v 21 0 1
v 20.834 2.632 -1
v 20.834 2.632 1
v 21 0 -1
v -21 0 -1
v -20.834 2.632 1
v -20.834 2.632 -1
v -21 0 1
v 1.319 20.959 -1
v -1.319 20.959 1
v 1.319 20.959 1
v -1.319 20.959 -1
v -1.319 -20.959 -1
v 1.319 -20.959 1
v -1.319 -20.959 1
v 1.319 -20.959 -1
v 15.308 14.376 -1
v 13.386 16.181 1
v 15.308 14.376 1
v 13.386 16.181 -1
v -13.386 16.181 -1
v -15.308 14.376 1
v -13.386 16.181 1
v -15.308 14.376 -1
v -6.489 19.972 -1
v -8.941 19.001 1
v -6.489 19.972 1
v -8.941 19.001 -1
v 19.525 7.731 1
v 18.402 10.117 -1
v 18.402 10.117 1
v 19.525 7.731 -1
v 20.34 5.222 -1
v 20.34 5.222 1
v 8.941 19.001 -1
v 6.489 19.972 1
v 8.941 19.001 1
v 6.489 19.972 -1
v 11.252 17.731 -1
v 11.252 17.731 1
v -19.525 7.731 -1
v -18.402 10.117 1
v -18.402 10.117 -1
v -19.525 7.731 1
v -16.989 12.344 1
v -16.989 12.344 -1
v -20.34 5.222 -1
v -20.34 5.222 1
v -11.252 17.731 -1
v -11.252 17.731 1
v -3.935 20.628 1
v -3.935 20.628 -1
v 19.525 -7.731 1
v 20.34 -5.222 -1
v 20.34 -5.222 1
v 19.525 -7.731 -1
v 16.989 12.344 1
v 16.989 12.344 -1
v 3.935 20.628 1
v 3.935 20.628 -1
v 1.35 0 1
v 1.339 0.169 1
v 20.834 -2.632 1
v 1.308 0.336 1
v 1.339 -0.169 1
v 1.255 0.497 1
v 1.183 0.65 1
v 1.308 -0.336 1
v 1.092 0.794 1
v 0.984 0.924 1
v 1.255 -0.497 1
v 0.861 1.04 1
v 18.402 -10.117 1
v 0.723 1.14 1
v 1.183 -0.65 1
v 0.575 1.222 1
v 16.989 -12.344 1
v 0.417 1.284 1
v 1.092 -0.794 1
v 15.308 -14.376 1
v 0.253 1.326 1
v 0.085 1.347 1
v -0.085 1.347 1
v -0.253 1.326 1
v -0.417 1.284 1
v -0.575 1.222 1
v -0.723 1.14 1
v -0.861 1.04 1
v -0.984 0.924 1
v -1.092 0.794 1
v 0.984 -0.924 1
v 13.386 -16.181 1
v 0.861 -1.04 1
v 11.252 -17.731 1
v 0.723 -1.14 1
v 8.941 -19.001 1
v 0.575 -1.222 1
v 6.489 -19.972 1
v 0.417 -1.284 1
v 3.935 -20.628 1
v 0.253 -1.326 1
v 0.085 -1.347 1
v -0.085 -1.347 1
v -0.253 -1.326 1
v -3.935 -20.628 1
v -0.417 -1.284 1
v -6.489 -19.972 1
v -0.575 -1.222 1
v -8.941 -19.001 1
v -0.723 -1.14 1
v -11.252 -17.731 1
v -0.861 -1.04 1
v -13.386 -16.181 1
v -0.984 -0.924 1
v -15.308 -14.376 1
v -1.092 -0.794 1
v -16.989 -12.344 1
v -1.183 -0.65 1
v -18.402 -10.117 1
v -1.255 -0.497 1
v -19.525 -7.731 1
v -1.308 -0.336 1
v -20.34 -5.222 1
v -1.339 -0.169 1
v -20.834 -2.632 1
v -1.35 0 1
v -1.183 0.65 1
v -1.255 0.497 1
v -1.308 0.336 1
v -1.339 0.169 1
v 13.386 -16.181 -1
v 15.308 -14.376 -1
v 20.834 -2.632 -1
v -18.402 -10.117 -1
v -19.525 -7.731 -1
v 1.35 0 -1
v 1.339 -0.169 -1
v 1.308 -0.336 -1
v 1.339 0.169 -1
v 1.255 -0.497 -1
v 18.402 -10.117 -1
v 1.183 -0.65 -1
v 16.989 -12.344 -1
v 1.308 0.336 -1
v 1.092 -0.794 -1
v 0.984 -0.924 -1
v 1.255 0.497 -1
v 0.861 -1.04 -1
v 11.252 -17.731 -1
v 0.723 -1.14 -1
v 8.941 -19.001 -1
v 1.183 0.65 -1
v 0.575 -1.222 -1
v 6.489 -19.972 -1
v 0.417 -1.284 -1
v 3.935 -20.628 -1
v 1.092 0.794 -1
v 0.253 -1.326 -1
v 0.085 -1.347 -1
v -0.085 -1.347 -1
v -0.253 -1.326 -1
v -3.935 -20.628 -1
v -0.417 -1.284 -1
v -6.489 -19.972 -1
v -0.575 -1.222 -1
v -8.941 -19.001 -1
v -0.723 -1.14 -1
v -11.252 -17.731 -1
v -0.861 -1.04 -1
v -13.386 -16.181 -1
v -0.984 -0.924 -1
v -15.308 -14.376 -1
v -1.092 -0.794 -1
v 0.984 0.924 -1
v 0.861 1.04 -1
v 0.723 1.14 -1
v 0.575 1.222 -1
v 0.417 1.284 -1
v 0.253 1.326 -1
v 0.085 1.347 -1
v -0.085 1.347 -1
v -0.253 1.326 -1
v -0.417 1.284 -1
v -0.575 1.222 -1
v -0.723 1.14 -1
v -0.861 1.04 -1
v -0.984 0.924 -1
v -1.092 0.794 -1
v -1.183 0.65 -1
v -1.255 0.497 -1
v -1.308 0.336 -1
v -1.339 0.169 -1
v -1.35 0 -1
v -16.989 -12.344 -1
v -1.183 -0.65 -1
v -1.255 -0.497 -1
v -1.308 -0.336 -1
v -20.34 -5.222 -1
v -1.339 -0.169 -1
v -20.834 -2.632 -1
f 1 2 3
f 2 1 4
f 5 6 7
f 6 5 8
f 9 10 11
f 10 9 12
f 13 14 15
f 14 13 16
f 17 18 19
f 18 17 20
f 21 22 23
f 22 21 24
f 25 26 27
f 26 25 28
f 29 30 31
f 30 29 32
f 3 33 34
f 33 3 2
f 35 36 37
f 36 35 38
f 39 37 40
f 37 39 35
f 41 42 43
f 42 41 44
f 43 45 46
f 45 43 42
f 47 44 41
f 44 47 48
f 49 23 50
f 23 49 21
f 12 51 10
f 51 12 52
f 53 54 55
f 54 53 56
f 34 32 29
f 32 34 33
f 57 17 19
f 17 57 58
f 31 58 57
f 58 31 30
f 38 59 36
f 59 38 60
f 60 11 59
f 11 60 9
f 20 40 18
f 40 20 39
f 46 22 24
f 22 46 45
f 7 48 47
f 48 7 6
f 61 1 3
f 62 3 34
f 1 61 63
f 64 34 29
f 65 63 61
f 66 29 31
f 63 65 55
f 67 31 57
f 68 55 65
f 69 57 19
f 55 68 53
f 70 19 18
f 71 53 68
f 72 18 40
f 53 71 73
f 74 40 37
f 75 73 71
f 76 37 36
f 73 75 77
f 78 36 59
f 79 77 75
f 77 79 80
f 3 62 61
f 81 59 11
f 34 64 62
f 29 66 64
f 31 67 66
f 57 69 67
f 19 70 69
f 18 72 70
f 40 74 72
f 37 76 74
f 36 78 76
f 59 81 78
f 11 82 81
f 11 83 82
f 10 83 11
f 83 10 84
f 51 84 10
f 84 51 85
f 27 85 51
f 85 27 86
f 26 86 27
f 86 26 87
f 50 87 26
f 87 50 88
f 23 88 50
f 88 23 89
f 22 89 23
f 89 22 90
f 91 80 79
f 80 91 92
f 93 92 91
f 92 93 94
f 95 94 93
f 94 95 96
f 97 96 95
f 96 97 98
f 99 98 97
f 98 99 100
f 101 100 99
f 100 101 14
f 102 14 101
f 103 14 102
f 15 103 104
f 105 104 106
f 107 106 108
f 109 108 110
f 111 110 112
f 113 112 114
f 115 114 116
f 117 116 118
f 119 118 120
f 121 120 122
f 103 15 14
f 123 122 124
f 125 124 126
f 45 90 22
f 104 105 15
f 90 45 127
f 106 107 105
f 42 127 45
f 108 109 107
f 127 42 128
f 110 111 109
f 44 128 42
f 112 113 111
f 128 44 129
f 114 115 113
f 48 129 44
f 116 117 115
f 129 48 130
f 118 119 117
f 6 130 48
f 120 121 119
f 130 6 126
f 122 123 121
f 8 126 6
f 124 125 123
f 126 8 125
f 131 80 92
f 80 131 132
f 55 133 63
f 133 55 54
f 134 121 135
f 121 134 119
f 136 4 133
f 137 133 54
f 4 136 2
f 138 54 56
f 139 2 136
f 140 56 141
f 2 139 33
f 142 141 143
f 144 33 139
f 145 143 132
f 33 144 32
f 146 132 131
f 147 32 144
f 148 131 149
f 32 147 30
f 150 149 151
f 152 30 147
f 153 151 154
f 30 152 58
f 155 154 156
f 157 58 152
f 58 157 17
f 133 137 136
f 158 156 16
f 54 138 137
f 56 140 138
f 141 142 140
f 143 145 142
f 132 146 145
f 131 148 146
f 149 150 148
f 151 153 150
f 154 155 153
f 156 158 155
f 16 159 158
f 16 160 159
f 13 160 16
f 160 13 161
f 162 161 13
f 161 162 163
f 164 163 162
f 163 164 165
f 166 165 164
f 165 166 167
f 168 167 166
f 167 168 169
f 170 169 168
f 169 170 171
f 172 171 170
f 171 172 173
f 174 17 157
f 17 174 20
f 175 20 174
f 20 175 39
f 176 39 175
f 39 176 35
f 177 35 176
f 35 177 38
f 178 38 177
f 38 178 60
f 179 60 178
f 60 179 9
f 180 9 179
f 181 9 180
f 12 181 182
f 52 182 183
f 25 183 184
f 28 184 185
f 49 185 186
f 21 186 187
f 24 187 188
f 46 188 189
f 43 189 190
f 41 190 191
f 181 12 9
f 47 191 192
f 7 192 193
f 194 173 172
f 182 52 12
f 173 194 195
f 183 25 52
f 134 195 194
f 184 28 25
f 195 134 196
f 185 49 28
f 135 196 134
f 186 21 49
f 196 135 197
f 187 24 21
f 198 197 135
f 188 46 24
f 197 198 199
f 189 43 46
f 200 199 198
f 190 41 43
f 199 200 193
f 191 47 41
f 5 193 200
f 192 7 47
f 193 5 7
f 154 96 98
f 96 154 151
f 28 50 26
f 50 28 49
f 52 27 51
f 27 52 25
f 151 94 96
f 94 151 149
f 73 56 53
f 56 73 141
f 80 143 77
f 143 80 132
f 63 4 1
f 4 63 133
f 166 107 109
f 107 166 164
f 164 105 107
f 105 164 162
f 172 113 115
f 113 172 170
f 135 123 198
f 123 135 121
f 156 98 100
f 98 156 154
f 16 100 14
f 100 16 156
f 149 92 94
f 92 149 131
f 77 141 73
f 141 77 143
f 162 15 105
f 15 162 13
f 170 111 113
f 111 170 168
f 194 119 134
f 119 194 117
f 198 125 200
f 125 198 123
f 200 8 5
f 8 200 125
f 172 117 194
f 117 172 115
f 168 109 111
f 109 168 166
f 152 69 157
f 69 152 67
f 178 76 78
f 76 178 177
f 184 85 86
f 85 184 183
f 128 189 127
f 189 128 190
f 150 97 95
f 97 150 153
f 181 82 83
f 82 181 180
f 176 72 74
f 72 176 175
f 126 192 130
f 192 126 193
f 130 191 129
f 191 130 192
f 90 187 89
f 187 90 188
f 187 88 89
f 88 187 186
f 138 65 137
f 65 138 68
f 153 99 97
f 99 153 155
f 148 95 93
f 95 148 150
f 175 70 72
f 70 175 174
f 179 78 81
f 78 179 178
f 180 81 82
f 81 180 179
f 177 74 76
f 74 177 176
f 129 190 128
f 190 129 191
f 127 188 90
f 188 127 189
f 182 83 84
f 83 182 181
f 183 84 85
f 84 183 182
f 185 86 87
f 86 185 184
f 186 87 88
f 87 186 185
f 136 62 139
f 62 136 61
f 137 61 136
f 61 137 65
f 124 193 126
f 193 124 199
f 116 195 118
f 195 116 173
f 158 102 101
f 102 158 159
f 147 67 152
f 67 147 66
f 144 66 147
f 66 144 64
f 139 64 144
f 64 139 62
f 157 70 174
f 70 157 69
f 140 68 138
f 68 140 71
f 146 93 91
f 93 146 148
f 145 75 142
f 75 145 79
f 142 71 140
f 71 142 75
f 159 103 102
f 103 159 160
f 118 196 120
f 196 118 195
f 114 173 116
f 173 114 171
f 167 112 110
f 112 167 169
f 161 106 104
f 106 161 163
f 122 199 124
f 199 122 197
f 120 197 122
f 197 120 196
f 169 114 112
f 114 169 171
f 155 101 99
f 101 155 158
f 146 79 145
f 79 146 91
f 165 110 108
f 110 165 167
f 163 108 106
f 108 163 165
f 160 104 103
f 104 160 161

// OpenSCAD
$fn = 50;


difference() {
	union() {
		translate(v = [0, 0, -1.0000000000]) {
			cylinder(h = 2, r = 21.0000000000);
		}
	}
	union() {
		translate(v = [0, 0, -100.0000000000]) {
			cylinder(h = 200, r = 1.3500000000);
		}
	}
}
